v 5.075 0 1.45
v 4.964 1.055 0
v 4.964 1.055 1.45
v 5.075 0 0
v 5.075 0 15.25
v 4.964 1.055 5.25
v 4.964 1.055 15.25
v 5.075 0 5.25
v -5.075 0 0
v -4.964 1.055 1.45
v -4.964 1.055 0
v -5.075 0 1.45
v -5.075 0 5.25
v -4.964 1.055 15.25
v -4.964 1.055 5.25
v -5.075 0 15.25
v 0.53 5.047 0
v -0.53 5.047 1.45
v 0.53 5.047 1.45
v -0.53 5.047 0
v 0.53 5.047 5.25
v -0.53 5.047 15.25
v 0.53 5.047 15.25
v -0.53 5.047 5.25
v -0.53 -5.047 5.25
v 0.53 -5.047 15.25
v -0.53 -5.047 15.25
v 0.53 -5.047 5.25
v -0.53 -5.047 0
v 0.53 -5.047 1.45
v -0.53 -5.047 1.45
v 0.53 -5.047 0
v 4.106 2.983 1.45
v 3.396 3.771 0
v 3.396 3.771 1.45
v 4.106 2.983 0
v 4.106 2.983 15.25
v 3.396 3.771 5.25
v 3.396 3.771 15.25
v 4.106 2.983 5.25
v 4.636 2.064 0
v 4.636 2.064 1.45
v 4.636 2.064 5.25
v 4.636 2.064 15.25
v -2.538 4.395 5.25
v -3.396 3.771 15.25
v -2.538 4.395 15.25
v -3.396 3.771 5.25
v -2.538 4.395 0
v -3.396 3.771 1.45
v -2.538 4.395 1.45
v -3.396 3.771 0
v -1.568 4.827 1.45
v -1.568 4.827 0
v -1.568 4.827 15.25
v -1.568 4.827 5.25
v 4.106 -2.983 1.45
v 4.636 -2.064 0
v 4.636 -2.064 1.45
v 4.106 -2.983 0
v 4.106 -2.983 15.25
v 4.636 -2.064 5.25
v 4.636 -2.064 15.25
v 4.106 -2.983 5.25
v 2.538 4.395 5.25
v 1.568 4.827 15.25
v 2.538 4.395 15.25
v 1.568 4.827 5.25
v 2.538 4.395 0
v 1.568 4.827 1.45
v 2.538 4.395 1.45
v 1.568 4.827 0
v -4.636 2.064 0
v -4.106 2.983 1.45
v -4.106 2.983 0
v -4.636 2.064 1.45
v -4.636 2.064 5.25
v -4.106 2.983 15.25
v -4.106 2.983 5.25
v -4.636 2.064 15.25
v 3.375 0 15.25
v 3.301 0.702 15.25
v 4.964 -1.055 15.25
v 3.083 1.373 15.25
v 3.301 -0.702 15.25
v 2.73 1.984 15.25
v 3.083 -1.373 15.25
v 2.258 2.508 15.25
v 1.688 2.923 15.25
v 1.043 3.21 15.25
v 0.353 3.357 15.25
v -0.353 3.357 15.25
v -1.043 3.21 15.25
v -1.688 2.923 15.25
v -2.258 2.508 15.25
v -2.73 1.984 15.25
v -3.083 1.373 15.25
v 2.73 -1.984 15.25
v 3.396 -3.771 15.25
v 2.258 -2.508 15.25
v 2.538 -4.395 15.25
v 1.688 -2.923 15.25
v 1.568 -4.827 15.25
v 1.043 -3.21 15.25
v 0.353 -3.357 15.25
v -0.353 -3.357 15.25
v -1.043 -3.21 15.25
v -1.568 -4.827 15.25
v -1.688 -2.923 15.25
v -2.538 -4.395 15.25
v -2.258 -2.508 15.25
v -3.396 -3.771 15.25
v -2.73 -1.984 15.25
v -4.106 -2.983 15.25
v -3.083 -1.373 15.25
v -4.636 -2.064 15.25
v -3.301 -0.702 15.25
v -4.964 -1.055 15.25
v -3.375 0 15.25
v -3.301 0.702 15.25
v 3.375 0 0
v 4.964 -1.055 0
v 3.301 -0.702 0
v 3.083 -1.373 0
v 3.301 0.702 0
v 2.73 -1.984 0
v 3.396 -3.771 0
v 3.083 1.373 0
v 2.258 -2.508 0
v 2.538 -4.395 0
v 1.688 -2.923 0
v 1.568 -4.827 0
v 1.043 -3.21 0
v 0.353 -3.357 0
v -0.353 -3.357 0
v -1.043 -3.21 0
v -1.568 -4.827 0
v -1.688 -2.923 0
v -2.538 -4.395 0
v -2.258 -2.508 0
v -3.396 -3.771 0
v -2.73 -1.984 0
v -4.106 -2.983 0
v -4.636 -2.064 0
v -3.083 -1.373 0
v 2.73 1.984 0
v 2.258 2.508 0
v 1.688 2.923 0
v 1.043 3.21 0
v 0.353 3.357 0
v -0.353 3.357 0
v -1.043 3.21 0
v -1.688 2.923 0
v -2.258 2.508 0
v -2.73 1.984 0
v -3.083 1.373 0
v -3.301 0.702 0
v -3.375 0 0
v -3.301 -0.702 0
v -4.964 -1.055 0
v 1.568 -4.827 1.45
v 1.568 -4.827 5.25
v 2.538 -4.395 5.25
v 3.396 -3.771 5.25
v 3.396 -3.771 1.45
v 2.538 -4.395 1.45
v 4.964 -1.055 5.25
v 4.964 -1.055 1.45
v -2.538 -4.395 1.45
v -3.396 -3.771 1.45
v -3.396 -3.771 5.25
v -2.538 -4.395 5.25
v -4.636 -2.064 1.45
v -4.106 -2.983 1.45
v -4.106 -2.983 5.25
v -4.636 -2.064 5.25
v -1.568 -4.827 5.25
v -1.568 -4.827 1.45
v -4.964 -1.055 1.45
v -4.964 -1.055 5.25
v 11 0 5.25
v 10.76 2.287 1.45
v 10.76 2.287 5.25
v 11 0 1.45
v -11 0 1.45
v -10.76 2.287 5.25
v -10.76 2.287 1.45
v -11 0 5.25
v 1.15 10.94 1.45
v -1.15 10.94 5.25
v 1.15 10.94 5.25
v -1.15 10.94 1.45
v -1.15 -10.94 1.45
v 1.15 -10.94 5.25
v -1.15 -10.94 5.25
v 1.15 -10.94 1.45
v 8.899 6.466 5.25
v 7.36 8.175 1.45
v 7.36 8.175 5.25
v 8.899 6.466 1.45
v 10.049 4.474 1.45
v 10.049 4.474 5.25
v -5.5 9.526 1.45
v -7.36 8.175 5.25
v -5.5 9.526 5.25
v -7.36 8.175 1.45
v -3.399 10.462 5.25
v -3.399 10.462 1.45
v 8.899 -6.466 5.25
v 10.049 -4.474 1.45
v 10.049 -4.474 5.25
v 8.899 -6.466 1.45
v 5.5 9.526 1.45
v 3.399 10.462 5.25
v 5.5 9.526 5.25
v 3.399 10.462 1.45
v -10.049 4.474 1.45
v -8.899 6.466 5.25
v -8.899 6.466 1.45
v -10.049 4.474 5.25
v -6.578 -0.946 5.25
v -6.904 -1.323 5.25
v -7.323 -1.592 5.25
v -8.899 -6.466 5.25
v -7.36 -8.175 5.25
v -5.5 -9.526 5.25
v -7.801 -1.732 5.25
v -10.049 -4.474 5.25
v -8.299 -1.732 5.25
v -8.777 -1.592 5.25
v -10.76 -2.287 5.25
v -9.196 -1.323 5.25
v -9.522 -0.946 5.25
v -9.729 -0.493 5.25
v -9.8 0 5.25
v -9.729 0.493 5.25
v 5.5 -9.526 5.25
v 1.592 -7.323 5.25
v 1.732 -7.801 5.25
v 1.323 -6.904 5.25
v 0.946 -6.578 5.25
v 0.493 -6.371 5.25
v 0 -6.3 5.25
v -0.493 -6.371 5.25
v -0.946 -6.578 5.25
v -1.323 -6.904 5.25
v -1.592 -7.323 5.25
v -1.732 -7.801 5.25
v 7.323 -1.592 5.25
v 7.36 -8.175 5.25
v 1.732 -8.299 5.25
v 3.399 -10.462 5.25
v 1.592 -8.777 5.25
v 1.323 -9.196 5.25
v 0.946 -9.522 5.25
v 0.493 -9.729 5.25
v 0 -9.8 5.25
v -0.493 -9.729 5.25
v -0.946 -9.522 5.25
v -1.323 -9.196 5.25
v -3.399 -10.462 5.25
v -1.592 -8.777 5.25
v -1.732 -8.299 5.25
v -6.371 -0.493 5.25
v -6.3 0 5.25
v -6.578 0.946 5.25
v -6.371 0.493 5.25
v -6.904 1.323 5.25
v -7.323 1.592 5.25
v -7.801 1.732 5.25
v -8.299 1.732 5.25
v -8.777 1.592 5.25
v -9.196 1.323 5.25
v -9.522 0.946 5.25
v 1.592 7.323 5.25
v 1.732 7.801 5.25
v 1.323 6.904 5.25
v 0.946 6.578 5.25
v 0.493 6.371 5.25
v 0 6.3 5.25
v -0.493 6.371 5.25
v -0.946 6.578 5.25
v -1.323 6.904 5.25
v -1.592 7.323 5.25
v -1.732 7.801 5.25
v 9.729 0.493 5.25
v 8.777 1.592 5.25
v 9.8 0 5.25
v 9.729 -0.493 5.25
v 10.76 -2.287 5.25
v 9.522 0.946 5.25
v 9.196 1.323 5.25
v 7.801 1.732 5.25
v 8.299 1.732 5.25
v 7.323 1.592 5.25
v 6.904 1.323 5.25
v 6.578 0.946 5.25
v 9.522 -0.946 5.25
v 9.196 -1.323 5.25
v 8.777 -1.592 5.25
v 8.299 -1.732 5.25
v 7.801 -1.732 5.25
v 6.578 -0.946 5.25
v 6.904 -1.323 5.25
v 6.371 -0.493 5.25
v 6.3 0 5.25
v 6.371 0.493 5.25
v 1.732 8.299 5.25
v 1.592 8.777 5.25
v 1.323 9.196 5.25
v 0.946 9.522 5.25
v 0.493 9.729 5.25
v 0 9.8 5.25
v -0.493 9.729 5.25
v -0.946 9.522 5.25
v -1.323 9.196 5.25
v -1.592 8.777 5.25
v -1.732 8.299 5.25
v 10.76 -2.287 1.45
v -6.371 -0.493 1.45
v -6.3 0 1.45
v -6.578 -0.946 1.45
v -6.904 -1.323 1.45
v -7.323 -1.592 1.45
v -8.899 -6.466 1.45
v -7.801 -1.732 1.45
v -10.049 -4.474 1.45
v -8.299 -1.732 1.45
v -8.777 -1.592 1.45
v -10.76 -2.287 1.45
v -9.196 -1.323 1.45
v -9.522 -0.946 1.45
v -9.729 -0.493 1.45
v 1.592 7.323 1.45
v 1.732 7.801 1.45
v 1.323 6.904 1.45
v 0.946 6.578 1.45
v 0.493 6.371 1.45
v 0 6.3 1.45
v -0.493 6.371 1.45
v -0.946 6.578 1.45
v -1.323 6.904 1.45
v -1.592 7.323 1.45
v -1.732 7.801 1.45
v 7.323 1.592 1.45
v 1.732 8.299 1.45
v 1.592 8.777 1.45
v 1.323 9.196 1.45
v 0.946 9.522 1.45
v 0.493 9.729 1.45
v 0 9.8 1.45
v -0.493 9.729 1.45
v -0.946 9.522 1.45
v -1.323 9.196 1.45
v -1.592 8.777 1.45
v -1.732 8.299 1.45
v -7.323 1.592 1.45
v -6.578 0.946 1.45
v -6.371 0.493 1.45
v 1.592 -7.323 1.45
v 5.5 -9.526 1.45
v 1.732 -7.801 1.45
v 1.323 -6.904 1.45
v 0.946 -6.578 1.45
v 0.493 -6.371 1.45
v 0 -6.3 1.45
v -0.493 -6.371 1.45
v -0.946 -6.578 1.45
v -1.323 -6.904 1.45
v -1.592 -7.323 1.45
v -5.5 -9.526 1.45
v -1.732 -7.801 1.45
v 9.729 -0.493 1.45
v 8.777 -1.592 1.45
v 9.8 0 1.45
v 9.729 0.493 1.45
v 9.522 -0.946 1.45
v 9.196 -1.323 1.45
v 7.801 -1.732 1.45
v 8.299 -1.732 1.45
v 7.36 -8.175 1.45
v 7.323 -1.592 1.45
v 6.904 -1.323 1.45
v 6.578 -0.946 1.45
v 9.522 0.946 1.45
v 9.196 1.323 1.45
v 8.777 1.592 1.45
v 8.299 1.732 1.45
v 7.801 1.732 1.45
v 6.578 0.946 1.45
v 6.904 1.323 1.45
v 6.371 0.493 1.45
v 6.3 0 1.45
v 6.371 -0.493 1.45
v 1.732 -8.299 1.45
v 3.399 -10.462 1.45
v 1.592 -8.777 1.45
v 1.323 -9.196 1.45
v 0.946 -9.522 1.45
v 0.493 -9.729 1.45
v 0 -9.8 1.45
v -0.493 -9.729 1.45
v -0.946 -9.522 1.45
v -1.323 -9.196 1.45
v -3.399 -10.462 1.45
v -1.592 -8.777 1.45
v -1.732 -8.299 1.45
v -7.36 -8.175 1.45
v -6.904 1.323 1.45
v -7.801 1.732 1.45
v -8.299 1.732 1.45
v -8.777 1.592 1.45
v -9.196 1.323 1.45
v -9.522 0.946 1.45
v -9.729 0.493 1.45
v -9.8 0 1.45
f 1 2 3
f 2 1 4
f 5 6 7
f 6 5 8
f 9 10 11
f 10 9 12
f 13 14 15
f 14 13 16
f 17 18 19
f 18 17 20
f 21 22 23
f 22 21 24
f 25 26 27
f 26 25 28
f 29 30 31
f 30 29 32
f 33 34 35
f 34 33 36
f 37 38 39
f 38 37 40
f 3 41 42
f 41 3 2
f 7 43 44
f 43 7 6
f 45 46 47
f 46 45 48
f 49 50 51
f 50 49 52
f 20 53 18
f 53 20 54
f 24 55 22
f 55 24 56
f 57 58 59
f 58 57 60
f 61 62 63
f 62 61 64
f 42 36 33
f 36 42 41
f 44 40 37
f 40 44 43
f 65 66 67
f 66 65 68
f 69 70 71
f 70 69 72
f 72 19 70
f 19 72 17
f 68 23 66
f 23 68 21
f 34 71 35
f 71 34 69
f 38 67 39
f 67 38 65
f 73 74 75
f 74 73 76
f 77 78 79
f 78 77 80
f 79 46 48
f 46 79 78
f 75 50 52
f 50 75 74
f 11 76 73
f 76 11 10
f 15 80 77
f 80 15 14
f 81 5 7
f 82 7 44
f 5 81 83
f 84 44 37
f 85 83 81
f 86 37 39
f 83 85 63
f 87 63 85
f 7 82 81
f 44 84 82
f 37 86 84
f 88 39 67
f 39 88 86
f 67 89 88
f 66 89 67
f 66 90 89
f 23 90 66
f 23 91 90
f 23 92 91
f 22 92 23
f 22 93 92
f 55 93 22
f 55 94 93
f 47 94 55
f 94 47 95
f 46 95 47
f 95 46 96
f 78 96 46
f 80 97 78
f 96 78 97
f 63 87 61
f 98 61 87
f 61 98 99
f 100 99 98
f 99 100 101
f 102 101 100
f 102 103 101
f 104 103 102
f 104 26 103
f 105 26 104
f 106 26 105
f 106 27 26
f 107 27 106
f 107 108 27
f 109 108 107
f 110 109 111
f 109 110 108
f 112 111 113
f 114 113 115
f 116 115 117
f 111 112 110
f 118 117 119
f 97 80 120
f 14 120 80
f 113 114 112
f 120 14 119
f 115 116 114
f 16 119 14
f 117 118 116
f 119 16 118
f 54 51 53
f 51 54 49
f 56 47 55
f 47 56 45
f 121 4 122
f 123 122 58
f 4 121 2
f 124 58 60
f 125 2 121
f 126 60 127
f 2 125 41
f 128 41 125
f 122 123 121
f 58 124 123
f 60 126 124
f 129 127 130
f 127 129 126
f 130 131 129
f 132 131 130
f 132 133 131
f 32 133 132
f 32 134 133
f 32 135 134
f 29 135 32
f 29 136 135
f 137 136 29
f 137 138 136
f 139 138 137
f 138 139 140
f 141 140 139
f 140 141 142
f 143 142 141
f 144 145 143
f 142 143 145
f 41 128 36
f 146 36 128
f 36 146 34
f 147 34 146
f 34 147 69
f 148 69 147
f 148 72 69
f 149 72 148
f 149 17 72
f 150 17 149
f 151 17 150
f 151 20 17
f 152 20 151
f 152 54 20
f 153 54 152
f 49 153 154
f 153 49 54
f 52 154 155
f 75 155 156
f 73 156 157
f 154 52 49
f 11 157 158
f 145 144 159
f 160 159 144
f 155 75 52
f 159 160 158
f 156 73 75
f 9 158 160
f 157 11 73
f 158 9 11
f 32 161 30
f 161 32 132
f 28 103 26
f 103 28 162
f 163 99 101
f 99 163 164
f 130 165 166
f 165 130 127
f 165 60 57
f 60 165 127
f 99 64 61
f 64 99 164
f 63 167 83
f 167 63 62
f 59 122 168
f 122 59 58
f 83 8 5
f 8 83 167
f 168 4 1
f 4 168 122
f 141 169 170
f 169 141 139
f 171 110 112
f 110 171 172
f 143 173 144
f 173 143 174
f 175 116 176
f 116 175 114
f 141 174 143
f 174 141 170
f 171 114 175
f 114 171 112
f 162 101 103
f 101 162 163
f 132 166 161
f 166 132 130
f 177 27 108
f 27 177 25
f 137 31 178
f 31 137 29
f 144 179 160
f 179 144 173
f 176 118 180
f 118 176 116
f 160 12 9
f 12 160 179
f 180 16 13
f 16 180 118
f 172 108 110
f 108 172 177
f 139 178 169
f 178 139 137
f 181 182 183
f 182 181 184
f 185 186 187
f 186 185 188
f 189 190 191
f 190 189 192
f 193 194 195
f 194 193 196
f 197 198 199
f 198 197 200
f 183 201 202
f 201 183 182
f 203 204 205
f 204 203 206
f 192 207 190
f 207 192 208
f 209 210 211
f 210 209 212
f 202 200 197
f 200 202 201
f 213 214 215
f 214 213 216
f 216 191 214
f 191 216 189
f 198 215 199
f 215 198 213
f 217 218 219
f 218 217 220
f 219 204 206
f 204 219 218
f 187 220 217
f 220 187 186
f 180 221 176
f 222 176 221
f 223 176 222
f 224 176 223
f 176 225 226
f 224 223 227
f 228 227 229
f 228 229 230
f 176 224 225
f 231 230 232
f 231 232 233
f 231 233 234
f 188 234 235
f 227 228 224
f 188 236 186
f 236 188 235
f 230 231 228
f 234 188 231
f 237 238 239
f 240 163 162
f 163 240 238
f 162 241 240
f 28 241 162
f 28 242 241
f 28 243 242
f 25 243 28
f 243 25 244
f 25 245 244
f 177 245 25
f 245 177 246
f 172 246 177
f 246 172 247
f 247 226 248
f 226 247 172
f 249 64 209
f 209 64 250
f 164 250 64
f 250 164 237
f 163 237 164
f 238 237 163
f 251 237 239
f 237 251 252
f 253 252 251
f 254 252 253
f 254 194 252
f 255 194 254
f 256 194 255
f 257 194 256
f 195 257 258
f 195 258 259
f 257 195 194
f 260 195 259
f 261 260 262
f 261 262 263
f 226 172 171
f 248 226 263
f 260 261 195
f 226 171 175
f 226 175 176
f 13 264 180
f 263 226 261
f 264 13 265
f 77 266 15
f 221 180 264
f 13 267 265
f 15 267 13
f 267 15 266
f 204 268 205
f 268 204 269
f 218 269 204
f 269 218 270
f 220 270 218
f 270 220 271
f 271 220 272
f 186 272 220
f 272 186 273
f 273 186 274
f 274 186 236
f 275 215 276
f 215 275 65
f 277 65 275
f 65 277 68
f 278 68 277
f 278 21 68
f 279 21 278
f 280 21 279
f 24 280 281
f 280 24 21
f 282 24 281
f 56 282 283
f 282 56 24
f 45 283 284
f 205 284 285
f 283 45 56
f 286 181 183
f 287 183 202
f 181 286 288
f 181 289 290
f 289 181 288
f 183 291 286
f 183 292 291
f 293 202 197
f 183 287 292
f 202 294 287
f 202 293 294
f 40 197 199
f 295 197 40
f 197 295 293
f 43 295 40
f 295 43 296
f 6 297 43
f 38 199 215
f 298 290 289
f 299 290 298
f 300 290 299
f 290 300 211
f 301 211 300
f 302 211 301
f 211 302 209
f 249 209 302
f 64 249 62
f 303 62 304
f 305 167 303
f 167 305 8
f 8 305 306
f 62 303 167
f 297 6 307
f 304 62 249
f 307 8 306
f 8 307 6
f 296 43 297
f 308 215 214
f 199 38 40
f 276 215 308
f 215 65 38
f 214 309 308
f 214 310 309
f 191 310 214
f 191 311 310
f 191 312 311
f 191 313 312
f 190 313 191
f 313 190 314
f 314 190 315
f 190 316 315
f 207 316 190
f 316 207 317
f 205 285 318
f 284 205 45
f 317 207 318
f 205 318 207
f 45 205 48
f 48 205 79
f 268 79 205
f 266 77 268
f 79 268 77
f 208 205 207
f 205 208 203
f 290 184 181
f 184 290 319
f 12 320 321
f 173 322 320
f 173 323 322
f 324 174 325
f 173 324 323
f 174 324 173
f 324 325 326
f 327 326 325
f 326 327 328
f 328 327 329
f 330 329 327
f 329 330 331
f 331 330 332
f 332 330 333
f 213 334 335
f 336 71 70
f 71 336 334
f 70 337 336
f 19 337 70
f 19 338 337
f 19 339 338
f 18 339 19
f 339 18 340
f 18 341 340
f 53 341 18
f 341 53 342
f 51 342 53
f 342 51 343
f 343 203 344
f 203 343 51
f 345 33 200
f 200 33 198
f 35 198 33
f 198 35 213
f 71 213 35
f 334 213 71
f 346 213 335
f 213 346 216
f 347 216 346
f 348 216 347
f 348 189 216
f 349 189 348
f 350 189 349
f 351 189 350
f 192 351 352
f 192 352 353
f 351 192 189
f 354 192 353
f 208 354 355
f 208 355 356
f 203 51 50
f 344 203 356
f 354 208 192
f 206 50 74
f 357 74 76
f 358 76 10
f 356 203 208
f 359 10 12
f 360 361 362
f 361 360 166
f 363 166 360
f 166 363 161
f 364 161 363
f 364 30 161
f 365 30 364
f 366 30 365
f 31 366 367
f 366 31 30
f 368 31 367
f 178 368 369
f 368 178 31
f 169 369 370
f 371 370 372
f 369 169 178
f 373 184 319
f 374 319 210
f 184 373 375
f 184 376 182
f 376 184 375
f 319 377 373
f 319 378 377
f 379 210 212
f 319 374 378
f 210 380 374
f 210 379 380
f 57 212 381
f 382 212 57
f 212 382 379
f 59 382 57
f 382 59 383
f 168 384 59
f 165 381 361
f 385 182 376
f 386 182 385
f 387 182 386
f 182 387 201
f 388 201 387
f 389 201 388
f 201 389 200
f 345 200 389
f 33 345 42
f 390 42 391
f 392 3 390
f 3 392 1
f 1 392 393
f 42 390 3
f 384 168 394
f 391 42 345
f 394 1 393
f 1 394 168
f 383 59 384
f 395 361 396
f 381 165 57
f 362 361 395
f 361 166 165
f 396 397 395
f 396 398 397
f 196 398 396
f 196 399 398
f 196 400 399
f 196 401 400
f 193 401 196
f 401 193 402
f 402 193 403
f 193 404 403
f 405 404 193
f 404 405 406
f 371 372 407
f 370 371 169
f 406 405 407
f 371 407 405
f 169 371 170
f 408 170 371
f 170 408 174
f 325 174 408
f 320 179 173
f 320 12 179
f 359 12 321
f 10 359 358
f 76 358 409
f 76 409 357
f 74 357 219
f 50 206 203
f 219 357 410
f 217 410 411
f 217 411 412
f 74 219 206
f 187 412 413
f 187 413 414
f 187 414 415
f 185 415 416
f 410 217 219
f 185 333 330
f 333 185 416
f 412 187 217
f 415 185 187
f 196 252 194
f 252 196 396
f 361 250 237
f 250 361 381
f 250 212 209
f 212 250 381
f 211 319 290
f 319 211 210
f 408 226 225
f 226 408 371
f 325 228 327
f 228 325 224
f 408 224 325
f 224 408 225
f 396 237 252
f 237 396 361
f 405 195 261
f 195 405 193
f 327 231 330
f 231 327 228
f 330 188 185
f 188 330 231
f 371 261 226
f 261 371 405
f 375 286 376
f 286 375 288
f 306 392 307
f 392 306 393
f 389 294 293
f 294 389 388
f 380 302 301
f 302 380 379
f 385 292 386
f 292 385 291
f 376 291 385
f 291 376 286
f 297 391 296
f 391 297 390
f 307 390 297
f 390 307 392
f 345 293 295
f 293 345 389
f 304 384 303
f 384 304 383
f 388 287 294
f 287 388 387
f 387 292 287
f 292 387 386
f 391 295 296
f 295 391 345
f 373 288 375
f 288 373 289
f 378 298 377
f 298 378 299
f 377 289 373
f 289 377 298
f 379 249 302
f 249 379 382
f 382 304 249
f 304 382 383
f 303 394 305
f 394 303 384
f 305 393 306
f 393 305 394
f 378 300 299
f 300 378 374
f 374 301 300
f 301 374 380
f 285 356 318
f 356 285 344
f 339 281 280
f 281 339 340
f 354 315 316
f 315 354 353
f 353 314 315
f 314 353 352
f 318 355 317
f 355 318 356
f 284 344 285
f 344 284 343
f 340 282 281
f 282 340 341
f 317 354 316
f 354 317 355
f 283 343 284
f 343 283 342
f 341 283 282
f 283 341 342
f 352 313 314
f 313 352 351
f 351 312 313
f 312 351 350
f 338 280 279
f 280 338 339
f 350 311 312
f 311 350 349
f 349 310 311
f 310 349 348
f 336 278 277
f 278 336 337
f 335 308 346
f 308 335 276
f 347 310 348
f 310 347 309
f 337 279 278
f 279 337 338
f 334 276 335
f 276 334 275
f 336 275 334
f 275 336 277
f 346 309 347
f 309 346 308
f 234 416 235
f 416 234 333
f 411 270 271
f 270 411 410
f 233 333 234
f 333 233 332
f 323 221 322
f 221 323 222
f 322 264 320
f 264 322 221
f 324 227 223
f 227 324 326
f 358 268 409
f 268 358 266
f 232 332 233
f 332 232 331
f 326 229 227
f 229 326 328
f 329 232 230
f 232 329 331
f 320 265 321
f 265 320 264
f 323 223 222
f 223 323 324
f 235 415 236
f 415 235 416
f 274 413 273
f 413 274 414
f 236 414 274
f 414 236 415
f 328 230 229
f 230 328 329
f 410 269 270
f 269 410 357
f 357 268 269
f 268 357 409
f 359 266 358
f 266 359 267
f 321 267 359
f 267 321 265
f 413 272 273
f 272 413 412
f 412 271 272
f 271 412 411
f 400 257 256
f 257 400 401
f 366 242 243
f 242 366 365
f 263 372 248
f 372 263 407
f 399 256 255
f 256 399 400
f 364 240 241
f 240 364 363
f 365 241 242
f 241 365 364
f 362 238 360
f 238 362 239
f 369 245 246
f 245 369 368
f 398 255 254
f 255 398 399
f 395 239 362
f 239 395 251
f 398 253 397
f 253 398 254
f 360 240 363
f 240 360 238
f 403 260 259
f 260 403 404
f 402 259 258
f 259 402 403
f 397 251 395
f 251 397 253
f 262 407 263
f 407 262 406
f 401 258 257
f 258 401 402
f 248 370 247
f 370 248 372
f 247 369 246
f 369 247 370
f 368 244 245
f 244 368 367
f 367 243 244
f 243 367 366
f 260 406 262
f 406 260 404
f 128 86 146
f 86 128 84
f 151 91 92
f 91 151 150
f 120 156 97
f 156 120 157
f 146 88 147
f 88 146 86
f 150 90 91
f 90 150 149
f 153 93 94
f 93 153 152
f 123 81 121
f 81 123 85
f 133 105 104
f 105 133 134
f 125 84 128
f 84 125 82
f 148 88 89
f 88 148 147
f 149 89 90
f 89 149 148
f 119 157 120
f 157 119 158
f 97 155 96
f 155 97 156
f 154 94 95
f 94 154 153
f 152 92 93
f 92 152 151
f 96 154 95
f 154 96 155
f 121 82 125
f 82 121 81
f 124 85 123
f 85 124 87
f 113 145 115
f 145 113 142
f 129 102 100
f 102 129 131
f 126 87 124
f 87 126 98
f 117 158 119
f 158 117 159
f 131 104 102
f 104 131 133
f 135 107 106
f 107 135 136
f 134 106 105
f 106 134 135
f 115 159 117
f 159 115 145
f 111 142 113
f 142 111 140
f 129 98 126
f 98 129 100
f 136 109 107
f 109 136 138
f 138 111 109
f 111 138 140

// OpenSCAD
$fs=0.5;

module leadscrew_bolt()
{
    difference() {
        union() {
            cylinder(d=10.15, h=15.25);
            translate([0,0,15.25-10-3.8]) cylinder(d=22, h=3.8);
        }
        translate([0,0,-2]) cylinder(d=6.75, h=20);
        for (a=[0:90:359]) {
            rotate([0,0,a]) translate([(22/2)-(3.5/2)-1.2,0,-2]) cylinder(d=3.5, h=20);
        }
    }
}
leadscrew_bolt();
